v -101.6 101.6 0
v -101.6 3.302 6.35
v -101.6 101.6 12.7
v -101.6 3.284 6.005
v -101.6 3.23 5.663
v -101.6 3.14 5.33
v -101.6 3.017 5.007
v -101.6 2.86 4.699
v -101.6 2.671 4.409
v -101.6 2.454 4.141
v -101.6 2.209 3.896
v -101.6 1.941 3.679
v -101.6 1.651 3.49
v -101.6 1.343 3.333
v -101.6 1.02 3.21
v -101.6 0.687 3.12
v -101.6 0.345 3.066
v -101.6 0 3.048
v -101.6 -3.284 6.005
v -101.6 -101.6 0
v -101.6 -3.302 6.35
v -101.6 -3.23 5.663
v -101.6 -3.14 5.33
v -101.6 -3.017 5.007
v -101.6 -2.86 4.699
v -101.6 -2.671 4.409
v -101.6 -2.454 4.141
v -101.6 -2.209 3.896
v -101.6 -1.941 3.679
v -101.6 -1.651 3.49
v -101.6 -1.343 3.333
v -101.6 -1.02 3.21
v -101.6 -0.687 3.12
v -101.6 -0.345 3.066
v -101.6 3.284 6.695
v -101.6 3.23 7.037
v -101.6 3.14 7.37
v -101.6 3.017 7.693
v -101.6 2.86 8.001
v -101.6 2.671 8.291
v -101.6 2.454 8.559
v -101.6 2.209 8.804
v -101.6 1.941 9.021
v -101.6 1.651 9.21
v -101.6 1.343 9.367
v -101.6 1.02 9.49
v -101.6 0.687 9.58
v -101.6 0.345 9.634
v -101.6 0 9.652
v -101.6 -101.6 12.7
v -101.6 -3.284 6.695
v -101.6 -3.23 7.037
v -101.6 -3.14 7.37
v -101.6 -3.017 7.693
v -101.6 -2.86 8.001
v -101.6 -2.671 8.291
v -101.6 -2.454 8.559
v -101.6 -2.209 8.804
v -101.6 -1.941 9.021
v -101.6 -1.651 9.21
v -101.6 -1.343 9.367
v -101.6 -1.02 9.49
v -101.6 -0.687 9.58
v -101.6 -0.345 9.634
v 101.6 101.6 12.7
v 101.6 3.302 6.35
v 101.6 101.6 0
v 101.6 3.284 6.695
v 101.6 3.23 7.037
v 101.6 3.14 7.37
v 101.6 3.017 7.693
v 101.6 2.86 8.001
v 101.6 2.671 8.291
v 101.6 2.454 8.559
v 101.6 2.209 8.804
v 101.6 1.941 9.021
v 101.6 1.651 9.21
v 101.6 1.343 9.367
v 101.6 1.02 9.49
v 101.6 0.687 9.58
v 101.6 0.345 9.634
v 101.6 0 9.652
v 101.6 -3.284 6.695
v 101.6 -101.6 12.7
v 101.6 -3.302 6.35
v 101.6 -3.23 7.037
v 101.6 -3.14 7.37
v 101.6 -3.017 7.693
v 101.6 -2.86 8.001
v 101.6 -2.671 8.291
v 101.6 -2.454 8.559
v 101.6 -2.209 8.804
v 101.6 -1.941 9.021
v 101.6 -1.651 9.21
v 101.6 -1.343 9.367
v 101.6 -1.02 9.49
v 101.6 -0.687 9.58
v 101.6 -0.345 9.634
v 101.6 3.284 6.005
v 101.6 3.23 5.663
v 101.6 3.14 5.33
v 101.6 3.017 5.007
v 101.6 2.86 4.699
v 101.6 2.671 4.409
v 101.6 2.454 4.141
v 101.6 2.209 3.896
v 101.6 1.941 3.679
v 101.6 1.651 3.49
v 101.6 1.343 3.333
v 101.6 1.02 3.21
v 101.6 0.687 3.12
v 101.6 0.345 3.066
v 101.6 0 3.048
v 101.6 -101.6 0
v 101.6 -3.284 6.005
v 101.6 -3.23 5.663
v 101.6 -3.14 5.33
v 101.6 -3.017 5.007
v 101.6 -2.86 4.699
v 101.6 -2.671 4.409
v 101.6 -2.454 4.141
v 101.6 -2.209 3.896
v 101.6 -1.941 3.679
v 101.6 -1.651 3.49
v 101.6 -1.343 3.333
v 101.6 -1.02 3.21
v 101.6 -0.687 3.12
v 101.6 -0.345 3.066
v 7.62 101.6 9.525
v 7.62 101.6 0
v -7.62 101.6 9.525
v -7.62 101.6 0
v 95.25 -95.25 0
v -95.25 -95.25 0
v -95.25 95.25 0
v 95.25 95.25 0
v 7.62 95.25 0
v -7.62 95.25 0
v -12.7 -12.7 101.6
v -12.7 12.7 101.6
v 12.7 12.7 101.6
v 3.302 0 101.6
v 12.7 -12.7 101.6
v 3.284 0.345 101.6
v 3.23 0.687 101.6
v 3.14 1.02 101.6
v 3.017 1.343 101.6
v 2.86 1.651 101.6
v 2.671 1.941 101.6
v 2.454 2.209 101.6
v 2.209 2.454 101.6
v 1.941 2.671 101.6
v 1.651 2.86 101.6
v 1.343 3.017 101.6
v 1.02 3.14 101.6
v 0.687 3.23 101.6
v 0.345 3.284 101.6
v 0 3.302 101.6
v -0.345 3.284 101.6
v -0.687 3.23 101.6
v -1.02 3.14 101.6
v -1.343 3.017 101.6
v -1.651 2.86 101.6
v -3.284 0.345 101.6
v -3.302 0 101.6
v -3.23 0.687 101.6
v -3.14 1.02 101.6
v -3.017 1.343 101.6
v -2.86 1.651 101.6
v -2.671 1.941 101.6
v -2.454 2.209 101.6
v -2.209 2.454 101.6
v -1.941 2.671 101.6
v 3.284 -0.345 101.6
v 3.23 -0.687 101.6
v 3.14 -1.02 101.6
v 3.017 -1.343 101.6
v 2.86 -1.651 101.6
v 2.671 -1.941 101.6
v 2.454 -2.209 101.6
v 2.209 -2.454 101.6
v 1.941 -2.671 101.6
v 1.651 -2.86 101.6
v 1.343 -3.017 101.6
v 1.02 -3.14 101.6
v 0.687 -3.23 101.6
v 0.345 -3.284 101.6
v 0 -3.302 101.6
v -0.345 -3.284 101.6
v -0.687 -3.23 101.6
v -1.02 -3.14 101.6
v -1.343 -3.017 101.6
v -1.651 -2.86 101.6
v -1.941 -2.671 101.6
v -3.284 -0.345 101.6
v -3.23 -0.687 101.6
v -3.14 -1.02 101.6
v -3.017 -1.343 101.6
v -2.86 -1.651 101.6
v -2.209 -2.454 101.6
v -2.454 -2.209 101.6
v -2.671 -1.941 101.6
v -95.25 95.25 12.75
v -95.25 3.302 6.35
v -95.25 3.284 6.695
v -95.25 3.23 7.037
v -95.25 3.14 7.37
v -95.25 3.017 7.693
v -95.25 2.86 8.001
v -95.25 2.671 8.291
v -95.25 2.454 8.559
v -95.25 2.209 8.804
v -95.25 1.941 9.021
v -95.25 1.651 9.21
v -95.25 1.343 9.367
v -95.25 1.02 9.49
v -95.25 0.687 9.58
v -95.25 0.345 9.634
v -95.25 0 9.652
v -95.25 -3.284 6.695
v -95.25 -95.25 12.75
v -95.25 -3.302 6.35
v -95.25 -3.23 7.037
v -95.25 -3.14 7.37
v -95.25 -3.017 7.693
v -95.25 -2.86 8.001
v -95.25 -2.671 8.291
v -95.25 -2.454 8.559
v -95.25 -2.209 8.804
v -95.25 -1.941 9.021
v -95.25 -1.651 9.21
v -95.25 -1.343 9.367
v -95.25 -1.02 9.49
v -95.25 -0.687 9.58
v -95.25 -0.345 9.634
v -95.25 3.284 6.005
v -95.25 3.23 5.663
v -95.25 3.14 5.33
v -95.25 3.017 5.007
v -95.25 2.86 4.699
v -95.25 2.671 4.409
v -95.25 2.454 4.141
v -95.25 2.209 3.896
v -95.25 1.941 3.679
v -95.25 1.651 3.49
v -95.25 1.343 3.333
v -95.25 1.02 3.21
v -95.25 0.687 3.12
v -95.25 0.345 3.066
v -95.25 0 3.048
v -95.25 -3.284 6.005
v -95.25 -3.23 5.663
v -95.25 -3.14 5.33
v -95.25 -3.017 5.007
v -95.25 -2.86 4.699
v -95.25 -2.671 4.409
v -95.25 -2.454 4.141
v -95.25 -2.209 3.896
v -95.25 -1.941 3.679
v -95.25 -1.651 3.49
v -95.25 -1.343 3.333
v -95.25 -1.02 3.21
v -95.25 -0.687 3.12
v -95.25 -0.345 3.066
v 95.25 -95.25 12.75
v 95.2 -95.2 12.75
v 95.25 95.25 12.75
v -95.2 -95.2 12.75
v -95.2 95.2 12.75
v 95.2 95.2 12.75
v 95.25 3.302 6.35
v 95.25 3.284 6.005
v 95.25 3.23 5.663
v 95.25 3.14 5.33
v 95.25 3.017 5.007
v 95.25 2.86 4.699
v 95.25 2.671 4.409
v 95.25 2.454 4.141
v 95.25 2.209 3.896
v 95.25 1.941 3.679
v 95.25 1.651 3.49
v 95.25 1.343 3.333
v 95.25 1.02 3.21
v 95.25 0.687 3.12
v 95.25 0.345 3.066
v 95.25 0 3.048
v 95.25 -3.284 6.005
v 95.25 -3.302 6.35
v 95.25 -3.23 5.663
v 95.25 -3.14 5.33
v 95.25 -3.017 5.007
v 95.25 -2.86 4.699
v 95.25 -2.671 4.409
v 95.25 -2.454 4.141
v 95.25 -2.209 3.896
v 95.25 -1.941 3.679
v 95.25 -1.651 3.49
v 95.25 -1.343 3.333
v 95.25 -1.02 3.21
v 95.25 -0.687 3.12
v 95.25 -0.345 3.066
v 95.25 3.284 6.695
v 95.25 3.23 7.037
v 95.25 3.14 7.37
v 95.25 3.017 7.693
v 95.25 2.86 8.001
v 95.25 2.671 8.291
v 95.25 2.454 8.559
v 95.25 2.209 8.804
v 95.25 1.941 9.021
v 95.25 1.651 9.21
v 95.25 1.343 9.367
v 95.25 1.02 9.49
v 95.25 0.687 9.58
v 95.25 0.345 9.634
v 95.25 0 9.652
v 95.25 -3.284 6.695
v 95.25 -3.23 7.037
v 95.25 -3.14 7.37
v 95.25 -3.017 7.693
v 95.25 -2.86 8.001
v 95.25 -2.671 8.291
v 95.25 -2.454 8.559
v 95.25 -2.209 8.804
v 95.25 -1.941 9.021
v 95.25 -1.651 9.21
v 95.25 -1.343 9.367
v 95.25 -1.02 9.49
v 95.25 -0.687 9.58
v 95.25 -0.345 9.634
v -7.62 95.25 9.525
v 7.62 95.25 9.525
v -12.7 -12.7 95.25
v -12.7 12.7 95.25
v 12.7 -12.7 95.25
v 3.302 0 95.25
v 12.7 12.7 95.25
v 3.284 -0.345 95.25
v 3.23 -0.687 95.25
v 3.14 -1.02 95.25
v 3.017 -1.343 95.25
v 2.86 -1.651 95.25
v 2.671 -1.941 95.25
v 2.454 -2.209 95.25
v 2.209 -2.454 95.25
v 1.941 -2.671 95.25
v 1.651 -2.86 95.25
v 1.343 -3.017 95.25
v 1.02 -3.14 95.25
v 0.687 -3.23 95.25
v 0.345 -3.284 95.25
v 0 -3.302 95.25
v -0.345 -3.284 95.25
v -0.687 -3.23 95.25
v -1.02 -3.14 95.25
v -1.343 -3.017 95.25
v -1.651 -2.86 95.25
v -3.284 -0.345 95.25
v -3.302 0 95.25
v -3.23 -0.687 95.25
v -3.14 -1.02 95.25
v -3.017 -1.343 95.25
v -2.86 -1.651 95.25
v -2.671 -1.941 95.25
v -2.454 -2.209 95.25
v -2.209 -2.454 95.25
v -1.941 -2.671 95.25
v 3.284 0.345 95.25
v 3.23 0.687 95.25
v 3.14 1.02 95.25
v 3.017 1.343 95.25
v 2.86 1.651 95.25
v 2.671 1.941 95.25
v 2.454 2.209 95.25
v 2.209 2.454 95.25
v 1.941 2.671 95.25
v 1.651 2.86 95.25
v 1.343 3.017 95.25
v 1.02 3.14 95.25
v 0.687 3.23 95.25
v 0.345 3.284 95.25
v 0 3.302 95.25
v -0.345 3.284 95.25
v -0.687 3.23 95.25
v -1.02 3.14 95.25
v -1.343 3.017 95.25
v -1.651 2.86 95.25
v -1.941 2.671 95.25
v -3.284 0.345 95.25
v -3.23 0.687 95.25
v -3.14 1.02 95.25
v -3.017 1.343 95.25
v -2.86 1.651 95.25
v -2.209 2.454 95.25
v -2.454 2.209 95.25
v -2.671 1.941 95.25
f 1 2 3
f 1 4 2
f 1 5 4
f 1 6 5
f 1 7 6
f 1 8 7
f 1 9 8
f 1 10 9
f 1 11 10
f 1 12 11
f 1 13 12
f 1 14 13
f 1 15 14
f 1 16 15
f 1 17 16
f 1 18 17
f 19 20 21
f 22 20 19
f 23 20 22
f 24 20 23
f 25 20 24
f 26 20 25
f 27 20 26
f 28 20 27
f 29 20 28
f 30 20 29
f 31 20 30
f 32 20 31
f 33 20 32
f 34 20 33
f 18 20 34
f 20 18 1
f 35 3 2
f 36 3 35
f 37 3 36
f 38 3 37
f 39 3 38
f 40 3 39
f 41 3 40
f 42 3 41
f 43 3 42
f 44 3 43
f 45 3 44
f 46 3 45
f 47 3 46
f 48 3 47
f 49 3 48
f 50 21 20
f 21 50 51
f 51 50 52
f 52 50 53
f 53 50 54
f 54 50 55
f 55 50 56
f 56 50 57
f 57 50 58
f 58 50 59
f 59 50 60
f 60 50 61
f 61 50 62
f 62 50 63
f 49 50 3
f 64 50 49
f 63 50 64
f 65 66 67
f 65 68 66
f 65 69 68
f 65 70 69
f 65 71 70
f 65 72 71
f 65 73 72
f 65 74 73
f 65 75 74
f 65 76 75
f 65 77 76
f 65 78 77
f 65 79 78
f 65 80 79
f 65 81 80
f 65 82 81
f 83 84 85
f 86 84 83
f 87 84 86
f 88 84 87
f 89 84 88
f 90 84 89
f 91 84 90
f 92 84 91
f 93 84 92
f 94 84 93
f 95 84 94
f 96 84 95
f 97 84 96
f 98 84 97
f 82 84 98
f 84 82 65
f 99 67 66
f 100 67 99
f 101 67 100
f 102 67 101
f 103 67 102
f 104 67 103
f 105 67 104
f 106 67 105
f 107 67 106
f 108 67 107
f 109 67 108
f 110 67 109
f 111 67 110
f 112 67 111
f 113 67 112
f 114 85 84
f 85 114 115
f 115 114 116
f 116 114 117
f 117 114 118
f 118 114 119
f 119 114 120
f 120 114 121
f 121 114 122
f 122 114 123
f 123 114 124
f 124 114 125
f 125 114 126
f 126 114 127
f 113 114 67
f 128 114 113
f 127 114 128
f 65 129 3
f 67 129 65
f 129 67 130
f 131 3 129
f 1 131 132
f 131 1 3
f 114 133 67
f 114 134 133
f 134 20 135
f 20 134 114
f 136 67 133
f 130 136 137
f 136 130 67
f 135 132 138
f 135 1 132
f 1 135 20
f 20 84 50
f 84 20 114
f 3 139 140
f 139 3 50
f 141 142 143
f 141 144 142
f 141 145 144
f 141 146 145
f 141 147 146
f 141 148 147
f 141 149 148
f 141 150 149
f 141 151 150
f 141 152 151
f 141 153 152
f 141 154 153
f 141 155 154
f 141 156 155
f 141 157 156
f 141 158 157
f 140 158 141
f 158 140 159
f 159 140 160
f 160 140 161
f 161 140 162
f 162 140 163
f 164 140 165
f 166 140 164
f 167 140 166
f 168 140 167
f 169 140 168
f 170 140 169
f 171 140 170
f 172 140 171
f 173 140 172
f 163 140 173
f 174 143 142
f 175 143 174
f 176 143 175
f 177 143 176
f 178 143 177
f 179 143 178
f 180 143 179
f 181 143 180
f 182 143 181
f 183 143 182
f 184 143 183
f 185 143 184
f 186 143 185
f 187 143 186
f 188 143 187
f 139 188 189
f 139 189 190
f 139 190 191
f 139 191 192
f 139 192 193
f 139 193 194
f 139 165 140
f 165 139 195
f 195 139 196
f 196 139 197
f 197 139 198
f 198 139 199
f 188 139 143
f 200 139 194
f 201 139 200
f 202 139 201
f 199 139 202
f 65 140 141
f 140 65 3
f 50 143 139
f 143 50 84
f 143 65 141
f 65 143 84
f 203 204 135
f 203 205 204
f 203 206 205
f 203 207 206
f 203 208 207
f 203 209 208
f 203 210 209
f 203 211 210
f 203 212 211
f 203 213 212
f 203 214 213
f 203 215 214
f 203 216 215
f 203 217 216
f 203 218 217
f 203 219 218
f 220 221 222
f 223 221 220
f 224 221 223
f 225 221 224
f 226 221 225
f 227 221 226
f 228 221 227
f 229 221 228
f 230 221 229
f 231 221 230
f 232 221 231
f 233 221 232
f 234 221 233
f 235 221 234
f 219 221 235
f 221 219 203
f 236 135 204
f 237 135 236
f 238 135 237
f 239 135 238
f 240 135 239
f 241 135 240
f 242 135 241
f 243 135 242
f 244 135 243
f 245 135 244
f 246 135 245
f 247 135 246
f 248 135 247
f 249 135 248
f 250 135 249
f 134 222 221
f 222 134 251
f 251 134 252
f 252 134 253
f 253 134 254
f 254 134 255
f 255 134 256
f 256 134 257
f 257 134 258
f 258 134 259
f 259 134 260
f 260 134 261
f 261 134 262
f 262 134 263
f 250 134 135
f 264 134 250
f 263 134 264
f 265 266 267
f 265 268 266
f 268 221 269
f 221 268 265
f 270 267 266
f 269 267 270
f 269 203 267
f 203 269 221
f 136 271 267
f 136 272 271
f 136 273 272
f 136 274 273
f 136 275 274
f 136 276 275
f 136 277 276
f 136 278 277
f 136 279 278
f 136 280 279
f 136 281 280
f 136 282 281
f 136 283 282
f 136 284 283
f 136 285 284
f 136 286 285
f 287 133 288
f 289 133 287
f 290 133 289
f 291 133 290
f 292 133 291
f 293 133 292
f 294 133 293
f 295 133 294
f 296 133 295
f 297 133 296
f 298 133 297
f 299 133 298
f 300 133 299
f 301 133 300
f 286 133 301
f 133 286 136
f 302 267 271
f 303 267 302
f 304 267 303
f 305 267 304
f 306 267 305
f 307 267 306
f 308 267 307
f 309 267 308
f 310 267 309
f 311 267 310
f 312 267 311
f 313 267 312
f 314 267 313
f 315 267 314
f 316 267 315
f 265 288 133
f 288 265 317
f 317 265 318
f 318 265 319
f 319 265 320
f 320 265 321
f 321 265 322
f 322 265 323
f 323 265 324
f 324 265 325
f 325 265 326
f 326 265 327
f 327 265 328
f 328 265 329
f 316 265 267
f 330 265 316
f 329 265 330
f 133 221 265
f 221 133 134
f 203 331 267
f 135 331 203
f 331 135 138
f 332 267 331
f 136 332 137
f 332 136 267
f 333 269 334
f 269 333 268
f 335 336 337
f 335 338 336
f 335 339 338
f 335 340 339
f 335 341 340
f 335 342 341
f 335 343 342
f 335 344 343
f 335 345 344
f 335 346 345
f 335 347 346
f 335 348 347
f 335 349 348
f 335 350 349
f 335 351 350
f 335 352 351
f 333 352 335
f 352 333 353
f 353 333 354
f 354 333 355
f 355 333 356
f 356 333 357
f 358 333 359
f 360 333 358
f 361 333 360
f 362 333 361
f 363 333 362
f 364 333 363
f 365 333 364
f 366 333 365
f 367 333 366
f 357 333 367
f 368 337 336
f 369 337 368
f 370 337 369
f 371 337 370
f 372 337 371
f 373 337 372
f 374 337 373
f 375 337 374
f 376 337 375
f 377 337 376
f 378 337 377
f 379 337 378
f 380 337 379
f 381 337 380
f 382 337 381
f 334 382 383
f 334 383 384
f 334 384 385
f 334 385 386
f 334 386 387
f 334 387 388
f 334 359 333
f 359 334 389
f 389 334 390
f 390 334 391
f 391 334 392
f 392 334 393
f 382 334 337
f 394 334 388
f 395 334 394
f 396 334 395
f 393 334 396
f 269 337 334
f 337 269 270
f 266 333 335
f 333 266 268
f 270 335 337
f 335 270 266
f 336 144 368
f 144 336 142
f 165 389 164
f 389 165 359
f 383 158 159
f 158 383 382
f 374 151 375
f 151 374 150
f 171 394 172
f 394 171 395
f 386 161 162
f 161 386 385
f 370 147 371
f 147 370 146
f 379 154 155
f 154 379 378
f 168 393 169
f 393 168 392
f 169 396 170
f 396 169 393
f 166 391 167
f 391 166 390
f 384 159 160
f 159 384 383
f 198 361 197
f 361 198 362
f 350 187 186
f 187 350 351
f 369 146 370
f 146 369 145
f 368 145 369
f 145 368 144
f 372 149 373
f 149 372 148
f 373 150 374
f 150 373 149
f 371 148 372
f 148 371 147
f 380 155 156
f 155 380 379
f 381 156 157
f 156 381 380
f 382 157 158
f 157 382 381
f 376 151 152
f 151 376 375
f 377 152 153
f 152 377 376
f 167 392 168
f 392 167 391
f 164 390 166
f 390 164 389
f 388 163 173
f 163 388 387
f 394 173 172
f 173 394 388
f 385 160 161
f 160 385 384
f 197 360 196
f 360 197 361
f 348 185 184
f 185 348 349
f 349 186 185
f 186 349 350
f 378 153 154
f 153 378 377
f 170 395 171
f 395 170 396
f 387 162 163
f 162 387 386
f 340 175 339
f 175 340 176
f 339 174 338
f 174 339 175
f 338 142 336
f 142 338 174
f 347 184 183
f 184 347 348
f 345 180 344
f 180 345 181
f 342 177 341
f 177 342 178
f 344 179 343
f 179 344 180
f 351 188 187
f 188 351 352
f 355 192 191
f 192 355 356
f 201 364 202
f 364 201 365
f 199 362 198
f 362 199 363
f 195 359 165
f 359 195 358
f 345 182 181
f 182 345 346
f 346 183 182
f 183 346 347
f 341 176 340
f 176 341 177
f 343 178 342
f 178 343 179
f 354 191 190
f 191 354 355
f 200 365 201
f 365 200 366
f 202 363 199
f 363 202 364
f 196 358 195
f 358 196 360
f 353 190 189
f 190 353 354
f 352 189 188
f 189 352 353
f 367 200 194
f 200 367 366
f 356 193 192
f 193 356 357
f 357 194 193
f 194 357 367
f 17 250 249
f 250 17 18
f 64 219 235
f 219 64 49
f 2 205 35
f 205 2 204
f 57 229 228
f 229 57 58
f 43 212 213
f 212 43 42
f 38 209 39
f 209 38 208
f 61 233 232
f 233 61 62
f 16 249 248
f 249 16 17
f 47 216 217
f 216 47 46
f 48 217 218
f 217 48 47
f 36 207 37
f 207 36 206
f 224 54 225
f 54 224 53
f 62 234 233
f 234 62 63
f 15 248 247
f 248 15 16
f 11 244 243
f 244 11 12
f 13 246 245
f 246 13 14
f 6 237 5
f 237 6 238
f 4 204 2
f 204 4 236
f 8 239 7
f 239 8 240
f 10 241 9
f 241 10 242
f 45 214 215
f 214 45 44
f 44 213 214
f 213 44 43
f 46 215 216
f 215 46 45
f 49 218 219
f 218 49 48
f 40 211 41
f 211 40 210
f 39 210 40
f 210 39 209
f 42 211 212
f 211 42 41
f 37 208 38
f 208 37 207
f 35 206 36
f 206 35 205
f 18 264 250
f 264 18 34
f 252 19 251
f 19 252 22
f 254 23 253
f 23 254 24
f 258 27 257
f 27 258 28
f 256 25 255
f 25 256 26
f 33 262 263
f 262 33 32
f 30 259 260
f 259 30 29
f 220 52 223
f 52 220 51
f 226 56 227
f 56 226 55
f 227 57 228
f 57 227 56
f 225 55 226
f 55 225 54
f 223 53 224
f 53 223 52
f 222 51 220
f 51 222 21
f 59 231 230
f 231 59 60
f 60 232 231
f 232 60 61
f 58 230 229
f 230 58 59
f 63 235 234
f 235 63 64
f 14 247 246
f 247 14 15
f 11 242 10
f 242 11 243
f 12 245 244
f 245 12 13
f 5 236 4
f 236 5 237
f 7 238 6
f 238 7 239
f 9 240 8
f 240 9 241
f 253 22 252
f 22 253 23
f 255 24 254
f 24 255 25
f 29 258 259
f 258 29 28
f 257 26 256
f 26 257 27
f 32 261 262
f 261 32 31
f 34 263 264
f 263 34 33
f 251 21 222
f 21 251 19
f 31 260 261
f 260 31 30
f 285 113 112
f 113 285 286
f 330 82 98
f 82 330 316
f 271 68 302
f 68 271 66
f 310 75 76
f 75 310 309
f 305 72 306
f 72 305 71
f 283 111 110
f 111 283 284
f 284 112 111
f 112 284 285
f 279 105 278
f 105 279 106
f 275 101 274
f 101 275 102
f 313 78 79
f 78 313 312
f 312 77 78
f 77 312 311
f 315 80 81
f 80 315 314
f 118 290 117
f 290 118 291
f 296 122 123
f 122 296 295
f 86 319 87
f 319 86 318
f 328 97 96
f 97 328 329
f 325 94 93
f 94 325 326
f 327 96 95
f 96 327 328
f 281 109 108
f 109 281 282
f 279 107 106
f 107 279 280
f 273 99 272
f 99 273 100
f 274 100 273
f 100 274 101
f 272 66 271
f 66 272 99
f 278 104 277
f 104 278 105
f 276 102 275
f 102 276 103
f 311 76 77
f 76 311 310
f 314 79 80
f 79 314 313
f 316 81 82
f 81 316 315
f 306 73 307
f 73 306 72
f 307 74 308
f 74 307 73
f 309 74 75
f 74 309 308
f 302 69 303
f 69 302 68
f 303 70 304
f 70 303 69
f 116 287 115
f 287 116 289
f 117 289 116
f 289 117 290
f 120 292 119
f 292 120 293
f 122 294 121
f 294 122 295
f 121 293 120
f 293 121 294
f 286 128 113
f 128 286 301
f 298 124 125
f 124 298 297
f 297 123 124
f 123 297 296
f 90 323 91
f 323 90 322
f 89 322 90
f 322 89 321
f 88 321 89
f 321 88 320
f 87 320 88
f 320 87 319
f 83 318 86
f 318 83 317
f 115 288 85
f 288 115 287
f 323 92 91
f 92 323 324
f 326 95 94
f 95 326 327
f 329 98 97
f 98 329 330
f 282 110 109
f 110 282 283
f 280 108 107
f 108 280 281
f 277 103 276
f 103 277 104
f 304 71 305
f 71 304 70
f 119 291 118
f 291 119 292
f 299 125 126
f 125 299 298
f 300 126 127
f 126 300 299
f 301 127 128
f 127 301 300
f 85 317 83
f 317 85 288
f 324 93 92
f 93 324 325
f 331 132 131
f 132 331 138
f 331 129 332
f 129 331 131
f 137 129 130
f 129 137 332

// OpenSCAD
// All-Seeing Eye Enclosure Design
// Unit: mm (Converted from freedom units)

/* [Global Dimensions] */
INCH = 25.4;

// Base Specifications
base_width = 8.0 * INCH;
base_height = 0.5 * INCH;
wall_thickness = 0.25 * INCH;

// Pyramid Specifications
slope_angle = 45; 

// Top flat area for SMA connector
top_width = 1.0 * INCH; 

// Calculate pyramid height based on slope and top width
pyramid_height = (base_width - top_width) / 2;

// Connector Dimensions
sma_hole_diameter = 0.26 * INCH;
usb_cutout_width = 0.6 * INCH;
usb_cutout_height = 0.3 * INCH;
usb_cable_clearance = 0.5 * INCH;

/* [Rendering resolution] */
$fn = 60;

module main() {
    difference() {
        // 1. Positive Volume (The Shell)
        union() {
            // A. Base Prism
            translate([0, 0, base_height/2])
                cube([base_width, base_width, base_height], center=true);
            
            // B. Pyramid Frustum
            translate([0, 0, base_height])
                pyramid_frustum(base_width, top_width, pyramid_height);
        }

        // 2. Negative Volume (The Hollow)
        union() {
            // A. Hollow Base
            translate([0, 0, base_height/2])
                cube([base_width - 2*wall_thickness, base_width - 2*wall_thickness, base_height + 0.1], center=true);
            
            // B. Hollow Pyramid
            inner_height = pyramid_height - wall_thickness;
            inner_base_width = base_width - 2*wall_thickness;
            inner_top_width = top_width;

            translate([0, 0, base_height])
                 pyramid_frustum(inner_base_width, inner_top_width, inner_height);
        }

        // 3. Cutouts / Holes
        
        // A. Top SMA Connector (Apex)
        translate([0, 0, base_height + pyramid_height - wall_thickness - 1]) 
            cylinder(h = wall_thickness + 2, d = sma_hole_diameter, center = false);

        // B. Left Face SMA (WiFi)
        translate([-base_width/2 + wall_thickness/2, 0, base_height/2])
            rotate([0, 90, 0])
            cylinder(h = wall_thickness + 2, d = sma_hole_diameter, center = true);

        // C. Right Face SMA (Meshtastic)
        translate([base_width/2 - wall_thickness/2, 0, base_height/2])
            rotate([0, 90, 0])
            cylinder(h = wall_thickness + 2, d = sma_hole_diameter, center = true);

        // D. Rear Face USB
        translate([0, base_width/2 - wall_thickness/2, 0])
            cube([usb_cutout_width, wall_thickness + 2, base_height*1.5], center = true);
            
    }
}

module pyramid_frustum(base_w, top_w, h) {
    r_base = (base_w / 2) * sqrt(2);
    r_top = (top_w / 2) * sqrt(2);
    
    rotate([0, 0, 45])
        cylinder(h=h, r1=r_base, r2=r_top, $fn=4);
}

main();
